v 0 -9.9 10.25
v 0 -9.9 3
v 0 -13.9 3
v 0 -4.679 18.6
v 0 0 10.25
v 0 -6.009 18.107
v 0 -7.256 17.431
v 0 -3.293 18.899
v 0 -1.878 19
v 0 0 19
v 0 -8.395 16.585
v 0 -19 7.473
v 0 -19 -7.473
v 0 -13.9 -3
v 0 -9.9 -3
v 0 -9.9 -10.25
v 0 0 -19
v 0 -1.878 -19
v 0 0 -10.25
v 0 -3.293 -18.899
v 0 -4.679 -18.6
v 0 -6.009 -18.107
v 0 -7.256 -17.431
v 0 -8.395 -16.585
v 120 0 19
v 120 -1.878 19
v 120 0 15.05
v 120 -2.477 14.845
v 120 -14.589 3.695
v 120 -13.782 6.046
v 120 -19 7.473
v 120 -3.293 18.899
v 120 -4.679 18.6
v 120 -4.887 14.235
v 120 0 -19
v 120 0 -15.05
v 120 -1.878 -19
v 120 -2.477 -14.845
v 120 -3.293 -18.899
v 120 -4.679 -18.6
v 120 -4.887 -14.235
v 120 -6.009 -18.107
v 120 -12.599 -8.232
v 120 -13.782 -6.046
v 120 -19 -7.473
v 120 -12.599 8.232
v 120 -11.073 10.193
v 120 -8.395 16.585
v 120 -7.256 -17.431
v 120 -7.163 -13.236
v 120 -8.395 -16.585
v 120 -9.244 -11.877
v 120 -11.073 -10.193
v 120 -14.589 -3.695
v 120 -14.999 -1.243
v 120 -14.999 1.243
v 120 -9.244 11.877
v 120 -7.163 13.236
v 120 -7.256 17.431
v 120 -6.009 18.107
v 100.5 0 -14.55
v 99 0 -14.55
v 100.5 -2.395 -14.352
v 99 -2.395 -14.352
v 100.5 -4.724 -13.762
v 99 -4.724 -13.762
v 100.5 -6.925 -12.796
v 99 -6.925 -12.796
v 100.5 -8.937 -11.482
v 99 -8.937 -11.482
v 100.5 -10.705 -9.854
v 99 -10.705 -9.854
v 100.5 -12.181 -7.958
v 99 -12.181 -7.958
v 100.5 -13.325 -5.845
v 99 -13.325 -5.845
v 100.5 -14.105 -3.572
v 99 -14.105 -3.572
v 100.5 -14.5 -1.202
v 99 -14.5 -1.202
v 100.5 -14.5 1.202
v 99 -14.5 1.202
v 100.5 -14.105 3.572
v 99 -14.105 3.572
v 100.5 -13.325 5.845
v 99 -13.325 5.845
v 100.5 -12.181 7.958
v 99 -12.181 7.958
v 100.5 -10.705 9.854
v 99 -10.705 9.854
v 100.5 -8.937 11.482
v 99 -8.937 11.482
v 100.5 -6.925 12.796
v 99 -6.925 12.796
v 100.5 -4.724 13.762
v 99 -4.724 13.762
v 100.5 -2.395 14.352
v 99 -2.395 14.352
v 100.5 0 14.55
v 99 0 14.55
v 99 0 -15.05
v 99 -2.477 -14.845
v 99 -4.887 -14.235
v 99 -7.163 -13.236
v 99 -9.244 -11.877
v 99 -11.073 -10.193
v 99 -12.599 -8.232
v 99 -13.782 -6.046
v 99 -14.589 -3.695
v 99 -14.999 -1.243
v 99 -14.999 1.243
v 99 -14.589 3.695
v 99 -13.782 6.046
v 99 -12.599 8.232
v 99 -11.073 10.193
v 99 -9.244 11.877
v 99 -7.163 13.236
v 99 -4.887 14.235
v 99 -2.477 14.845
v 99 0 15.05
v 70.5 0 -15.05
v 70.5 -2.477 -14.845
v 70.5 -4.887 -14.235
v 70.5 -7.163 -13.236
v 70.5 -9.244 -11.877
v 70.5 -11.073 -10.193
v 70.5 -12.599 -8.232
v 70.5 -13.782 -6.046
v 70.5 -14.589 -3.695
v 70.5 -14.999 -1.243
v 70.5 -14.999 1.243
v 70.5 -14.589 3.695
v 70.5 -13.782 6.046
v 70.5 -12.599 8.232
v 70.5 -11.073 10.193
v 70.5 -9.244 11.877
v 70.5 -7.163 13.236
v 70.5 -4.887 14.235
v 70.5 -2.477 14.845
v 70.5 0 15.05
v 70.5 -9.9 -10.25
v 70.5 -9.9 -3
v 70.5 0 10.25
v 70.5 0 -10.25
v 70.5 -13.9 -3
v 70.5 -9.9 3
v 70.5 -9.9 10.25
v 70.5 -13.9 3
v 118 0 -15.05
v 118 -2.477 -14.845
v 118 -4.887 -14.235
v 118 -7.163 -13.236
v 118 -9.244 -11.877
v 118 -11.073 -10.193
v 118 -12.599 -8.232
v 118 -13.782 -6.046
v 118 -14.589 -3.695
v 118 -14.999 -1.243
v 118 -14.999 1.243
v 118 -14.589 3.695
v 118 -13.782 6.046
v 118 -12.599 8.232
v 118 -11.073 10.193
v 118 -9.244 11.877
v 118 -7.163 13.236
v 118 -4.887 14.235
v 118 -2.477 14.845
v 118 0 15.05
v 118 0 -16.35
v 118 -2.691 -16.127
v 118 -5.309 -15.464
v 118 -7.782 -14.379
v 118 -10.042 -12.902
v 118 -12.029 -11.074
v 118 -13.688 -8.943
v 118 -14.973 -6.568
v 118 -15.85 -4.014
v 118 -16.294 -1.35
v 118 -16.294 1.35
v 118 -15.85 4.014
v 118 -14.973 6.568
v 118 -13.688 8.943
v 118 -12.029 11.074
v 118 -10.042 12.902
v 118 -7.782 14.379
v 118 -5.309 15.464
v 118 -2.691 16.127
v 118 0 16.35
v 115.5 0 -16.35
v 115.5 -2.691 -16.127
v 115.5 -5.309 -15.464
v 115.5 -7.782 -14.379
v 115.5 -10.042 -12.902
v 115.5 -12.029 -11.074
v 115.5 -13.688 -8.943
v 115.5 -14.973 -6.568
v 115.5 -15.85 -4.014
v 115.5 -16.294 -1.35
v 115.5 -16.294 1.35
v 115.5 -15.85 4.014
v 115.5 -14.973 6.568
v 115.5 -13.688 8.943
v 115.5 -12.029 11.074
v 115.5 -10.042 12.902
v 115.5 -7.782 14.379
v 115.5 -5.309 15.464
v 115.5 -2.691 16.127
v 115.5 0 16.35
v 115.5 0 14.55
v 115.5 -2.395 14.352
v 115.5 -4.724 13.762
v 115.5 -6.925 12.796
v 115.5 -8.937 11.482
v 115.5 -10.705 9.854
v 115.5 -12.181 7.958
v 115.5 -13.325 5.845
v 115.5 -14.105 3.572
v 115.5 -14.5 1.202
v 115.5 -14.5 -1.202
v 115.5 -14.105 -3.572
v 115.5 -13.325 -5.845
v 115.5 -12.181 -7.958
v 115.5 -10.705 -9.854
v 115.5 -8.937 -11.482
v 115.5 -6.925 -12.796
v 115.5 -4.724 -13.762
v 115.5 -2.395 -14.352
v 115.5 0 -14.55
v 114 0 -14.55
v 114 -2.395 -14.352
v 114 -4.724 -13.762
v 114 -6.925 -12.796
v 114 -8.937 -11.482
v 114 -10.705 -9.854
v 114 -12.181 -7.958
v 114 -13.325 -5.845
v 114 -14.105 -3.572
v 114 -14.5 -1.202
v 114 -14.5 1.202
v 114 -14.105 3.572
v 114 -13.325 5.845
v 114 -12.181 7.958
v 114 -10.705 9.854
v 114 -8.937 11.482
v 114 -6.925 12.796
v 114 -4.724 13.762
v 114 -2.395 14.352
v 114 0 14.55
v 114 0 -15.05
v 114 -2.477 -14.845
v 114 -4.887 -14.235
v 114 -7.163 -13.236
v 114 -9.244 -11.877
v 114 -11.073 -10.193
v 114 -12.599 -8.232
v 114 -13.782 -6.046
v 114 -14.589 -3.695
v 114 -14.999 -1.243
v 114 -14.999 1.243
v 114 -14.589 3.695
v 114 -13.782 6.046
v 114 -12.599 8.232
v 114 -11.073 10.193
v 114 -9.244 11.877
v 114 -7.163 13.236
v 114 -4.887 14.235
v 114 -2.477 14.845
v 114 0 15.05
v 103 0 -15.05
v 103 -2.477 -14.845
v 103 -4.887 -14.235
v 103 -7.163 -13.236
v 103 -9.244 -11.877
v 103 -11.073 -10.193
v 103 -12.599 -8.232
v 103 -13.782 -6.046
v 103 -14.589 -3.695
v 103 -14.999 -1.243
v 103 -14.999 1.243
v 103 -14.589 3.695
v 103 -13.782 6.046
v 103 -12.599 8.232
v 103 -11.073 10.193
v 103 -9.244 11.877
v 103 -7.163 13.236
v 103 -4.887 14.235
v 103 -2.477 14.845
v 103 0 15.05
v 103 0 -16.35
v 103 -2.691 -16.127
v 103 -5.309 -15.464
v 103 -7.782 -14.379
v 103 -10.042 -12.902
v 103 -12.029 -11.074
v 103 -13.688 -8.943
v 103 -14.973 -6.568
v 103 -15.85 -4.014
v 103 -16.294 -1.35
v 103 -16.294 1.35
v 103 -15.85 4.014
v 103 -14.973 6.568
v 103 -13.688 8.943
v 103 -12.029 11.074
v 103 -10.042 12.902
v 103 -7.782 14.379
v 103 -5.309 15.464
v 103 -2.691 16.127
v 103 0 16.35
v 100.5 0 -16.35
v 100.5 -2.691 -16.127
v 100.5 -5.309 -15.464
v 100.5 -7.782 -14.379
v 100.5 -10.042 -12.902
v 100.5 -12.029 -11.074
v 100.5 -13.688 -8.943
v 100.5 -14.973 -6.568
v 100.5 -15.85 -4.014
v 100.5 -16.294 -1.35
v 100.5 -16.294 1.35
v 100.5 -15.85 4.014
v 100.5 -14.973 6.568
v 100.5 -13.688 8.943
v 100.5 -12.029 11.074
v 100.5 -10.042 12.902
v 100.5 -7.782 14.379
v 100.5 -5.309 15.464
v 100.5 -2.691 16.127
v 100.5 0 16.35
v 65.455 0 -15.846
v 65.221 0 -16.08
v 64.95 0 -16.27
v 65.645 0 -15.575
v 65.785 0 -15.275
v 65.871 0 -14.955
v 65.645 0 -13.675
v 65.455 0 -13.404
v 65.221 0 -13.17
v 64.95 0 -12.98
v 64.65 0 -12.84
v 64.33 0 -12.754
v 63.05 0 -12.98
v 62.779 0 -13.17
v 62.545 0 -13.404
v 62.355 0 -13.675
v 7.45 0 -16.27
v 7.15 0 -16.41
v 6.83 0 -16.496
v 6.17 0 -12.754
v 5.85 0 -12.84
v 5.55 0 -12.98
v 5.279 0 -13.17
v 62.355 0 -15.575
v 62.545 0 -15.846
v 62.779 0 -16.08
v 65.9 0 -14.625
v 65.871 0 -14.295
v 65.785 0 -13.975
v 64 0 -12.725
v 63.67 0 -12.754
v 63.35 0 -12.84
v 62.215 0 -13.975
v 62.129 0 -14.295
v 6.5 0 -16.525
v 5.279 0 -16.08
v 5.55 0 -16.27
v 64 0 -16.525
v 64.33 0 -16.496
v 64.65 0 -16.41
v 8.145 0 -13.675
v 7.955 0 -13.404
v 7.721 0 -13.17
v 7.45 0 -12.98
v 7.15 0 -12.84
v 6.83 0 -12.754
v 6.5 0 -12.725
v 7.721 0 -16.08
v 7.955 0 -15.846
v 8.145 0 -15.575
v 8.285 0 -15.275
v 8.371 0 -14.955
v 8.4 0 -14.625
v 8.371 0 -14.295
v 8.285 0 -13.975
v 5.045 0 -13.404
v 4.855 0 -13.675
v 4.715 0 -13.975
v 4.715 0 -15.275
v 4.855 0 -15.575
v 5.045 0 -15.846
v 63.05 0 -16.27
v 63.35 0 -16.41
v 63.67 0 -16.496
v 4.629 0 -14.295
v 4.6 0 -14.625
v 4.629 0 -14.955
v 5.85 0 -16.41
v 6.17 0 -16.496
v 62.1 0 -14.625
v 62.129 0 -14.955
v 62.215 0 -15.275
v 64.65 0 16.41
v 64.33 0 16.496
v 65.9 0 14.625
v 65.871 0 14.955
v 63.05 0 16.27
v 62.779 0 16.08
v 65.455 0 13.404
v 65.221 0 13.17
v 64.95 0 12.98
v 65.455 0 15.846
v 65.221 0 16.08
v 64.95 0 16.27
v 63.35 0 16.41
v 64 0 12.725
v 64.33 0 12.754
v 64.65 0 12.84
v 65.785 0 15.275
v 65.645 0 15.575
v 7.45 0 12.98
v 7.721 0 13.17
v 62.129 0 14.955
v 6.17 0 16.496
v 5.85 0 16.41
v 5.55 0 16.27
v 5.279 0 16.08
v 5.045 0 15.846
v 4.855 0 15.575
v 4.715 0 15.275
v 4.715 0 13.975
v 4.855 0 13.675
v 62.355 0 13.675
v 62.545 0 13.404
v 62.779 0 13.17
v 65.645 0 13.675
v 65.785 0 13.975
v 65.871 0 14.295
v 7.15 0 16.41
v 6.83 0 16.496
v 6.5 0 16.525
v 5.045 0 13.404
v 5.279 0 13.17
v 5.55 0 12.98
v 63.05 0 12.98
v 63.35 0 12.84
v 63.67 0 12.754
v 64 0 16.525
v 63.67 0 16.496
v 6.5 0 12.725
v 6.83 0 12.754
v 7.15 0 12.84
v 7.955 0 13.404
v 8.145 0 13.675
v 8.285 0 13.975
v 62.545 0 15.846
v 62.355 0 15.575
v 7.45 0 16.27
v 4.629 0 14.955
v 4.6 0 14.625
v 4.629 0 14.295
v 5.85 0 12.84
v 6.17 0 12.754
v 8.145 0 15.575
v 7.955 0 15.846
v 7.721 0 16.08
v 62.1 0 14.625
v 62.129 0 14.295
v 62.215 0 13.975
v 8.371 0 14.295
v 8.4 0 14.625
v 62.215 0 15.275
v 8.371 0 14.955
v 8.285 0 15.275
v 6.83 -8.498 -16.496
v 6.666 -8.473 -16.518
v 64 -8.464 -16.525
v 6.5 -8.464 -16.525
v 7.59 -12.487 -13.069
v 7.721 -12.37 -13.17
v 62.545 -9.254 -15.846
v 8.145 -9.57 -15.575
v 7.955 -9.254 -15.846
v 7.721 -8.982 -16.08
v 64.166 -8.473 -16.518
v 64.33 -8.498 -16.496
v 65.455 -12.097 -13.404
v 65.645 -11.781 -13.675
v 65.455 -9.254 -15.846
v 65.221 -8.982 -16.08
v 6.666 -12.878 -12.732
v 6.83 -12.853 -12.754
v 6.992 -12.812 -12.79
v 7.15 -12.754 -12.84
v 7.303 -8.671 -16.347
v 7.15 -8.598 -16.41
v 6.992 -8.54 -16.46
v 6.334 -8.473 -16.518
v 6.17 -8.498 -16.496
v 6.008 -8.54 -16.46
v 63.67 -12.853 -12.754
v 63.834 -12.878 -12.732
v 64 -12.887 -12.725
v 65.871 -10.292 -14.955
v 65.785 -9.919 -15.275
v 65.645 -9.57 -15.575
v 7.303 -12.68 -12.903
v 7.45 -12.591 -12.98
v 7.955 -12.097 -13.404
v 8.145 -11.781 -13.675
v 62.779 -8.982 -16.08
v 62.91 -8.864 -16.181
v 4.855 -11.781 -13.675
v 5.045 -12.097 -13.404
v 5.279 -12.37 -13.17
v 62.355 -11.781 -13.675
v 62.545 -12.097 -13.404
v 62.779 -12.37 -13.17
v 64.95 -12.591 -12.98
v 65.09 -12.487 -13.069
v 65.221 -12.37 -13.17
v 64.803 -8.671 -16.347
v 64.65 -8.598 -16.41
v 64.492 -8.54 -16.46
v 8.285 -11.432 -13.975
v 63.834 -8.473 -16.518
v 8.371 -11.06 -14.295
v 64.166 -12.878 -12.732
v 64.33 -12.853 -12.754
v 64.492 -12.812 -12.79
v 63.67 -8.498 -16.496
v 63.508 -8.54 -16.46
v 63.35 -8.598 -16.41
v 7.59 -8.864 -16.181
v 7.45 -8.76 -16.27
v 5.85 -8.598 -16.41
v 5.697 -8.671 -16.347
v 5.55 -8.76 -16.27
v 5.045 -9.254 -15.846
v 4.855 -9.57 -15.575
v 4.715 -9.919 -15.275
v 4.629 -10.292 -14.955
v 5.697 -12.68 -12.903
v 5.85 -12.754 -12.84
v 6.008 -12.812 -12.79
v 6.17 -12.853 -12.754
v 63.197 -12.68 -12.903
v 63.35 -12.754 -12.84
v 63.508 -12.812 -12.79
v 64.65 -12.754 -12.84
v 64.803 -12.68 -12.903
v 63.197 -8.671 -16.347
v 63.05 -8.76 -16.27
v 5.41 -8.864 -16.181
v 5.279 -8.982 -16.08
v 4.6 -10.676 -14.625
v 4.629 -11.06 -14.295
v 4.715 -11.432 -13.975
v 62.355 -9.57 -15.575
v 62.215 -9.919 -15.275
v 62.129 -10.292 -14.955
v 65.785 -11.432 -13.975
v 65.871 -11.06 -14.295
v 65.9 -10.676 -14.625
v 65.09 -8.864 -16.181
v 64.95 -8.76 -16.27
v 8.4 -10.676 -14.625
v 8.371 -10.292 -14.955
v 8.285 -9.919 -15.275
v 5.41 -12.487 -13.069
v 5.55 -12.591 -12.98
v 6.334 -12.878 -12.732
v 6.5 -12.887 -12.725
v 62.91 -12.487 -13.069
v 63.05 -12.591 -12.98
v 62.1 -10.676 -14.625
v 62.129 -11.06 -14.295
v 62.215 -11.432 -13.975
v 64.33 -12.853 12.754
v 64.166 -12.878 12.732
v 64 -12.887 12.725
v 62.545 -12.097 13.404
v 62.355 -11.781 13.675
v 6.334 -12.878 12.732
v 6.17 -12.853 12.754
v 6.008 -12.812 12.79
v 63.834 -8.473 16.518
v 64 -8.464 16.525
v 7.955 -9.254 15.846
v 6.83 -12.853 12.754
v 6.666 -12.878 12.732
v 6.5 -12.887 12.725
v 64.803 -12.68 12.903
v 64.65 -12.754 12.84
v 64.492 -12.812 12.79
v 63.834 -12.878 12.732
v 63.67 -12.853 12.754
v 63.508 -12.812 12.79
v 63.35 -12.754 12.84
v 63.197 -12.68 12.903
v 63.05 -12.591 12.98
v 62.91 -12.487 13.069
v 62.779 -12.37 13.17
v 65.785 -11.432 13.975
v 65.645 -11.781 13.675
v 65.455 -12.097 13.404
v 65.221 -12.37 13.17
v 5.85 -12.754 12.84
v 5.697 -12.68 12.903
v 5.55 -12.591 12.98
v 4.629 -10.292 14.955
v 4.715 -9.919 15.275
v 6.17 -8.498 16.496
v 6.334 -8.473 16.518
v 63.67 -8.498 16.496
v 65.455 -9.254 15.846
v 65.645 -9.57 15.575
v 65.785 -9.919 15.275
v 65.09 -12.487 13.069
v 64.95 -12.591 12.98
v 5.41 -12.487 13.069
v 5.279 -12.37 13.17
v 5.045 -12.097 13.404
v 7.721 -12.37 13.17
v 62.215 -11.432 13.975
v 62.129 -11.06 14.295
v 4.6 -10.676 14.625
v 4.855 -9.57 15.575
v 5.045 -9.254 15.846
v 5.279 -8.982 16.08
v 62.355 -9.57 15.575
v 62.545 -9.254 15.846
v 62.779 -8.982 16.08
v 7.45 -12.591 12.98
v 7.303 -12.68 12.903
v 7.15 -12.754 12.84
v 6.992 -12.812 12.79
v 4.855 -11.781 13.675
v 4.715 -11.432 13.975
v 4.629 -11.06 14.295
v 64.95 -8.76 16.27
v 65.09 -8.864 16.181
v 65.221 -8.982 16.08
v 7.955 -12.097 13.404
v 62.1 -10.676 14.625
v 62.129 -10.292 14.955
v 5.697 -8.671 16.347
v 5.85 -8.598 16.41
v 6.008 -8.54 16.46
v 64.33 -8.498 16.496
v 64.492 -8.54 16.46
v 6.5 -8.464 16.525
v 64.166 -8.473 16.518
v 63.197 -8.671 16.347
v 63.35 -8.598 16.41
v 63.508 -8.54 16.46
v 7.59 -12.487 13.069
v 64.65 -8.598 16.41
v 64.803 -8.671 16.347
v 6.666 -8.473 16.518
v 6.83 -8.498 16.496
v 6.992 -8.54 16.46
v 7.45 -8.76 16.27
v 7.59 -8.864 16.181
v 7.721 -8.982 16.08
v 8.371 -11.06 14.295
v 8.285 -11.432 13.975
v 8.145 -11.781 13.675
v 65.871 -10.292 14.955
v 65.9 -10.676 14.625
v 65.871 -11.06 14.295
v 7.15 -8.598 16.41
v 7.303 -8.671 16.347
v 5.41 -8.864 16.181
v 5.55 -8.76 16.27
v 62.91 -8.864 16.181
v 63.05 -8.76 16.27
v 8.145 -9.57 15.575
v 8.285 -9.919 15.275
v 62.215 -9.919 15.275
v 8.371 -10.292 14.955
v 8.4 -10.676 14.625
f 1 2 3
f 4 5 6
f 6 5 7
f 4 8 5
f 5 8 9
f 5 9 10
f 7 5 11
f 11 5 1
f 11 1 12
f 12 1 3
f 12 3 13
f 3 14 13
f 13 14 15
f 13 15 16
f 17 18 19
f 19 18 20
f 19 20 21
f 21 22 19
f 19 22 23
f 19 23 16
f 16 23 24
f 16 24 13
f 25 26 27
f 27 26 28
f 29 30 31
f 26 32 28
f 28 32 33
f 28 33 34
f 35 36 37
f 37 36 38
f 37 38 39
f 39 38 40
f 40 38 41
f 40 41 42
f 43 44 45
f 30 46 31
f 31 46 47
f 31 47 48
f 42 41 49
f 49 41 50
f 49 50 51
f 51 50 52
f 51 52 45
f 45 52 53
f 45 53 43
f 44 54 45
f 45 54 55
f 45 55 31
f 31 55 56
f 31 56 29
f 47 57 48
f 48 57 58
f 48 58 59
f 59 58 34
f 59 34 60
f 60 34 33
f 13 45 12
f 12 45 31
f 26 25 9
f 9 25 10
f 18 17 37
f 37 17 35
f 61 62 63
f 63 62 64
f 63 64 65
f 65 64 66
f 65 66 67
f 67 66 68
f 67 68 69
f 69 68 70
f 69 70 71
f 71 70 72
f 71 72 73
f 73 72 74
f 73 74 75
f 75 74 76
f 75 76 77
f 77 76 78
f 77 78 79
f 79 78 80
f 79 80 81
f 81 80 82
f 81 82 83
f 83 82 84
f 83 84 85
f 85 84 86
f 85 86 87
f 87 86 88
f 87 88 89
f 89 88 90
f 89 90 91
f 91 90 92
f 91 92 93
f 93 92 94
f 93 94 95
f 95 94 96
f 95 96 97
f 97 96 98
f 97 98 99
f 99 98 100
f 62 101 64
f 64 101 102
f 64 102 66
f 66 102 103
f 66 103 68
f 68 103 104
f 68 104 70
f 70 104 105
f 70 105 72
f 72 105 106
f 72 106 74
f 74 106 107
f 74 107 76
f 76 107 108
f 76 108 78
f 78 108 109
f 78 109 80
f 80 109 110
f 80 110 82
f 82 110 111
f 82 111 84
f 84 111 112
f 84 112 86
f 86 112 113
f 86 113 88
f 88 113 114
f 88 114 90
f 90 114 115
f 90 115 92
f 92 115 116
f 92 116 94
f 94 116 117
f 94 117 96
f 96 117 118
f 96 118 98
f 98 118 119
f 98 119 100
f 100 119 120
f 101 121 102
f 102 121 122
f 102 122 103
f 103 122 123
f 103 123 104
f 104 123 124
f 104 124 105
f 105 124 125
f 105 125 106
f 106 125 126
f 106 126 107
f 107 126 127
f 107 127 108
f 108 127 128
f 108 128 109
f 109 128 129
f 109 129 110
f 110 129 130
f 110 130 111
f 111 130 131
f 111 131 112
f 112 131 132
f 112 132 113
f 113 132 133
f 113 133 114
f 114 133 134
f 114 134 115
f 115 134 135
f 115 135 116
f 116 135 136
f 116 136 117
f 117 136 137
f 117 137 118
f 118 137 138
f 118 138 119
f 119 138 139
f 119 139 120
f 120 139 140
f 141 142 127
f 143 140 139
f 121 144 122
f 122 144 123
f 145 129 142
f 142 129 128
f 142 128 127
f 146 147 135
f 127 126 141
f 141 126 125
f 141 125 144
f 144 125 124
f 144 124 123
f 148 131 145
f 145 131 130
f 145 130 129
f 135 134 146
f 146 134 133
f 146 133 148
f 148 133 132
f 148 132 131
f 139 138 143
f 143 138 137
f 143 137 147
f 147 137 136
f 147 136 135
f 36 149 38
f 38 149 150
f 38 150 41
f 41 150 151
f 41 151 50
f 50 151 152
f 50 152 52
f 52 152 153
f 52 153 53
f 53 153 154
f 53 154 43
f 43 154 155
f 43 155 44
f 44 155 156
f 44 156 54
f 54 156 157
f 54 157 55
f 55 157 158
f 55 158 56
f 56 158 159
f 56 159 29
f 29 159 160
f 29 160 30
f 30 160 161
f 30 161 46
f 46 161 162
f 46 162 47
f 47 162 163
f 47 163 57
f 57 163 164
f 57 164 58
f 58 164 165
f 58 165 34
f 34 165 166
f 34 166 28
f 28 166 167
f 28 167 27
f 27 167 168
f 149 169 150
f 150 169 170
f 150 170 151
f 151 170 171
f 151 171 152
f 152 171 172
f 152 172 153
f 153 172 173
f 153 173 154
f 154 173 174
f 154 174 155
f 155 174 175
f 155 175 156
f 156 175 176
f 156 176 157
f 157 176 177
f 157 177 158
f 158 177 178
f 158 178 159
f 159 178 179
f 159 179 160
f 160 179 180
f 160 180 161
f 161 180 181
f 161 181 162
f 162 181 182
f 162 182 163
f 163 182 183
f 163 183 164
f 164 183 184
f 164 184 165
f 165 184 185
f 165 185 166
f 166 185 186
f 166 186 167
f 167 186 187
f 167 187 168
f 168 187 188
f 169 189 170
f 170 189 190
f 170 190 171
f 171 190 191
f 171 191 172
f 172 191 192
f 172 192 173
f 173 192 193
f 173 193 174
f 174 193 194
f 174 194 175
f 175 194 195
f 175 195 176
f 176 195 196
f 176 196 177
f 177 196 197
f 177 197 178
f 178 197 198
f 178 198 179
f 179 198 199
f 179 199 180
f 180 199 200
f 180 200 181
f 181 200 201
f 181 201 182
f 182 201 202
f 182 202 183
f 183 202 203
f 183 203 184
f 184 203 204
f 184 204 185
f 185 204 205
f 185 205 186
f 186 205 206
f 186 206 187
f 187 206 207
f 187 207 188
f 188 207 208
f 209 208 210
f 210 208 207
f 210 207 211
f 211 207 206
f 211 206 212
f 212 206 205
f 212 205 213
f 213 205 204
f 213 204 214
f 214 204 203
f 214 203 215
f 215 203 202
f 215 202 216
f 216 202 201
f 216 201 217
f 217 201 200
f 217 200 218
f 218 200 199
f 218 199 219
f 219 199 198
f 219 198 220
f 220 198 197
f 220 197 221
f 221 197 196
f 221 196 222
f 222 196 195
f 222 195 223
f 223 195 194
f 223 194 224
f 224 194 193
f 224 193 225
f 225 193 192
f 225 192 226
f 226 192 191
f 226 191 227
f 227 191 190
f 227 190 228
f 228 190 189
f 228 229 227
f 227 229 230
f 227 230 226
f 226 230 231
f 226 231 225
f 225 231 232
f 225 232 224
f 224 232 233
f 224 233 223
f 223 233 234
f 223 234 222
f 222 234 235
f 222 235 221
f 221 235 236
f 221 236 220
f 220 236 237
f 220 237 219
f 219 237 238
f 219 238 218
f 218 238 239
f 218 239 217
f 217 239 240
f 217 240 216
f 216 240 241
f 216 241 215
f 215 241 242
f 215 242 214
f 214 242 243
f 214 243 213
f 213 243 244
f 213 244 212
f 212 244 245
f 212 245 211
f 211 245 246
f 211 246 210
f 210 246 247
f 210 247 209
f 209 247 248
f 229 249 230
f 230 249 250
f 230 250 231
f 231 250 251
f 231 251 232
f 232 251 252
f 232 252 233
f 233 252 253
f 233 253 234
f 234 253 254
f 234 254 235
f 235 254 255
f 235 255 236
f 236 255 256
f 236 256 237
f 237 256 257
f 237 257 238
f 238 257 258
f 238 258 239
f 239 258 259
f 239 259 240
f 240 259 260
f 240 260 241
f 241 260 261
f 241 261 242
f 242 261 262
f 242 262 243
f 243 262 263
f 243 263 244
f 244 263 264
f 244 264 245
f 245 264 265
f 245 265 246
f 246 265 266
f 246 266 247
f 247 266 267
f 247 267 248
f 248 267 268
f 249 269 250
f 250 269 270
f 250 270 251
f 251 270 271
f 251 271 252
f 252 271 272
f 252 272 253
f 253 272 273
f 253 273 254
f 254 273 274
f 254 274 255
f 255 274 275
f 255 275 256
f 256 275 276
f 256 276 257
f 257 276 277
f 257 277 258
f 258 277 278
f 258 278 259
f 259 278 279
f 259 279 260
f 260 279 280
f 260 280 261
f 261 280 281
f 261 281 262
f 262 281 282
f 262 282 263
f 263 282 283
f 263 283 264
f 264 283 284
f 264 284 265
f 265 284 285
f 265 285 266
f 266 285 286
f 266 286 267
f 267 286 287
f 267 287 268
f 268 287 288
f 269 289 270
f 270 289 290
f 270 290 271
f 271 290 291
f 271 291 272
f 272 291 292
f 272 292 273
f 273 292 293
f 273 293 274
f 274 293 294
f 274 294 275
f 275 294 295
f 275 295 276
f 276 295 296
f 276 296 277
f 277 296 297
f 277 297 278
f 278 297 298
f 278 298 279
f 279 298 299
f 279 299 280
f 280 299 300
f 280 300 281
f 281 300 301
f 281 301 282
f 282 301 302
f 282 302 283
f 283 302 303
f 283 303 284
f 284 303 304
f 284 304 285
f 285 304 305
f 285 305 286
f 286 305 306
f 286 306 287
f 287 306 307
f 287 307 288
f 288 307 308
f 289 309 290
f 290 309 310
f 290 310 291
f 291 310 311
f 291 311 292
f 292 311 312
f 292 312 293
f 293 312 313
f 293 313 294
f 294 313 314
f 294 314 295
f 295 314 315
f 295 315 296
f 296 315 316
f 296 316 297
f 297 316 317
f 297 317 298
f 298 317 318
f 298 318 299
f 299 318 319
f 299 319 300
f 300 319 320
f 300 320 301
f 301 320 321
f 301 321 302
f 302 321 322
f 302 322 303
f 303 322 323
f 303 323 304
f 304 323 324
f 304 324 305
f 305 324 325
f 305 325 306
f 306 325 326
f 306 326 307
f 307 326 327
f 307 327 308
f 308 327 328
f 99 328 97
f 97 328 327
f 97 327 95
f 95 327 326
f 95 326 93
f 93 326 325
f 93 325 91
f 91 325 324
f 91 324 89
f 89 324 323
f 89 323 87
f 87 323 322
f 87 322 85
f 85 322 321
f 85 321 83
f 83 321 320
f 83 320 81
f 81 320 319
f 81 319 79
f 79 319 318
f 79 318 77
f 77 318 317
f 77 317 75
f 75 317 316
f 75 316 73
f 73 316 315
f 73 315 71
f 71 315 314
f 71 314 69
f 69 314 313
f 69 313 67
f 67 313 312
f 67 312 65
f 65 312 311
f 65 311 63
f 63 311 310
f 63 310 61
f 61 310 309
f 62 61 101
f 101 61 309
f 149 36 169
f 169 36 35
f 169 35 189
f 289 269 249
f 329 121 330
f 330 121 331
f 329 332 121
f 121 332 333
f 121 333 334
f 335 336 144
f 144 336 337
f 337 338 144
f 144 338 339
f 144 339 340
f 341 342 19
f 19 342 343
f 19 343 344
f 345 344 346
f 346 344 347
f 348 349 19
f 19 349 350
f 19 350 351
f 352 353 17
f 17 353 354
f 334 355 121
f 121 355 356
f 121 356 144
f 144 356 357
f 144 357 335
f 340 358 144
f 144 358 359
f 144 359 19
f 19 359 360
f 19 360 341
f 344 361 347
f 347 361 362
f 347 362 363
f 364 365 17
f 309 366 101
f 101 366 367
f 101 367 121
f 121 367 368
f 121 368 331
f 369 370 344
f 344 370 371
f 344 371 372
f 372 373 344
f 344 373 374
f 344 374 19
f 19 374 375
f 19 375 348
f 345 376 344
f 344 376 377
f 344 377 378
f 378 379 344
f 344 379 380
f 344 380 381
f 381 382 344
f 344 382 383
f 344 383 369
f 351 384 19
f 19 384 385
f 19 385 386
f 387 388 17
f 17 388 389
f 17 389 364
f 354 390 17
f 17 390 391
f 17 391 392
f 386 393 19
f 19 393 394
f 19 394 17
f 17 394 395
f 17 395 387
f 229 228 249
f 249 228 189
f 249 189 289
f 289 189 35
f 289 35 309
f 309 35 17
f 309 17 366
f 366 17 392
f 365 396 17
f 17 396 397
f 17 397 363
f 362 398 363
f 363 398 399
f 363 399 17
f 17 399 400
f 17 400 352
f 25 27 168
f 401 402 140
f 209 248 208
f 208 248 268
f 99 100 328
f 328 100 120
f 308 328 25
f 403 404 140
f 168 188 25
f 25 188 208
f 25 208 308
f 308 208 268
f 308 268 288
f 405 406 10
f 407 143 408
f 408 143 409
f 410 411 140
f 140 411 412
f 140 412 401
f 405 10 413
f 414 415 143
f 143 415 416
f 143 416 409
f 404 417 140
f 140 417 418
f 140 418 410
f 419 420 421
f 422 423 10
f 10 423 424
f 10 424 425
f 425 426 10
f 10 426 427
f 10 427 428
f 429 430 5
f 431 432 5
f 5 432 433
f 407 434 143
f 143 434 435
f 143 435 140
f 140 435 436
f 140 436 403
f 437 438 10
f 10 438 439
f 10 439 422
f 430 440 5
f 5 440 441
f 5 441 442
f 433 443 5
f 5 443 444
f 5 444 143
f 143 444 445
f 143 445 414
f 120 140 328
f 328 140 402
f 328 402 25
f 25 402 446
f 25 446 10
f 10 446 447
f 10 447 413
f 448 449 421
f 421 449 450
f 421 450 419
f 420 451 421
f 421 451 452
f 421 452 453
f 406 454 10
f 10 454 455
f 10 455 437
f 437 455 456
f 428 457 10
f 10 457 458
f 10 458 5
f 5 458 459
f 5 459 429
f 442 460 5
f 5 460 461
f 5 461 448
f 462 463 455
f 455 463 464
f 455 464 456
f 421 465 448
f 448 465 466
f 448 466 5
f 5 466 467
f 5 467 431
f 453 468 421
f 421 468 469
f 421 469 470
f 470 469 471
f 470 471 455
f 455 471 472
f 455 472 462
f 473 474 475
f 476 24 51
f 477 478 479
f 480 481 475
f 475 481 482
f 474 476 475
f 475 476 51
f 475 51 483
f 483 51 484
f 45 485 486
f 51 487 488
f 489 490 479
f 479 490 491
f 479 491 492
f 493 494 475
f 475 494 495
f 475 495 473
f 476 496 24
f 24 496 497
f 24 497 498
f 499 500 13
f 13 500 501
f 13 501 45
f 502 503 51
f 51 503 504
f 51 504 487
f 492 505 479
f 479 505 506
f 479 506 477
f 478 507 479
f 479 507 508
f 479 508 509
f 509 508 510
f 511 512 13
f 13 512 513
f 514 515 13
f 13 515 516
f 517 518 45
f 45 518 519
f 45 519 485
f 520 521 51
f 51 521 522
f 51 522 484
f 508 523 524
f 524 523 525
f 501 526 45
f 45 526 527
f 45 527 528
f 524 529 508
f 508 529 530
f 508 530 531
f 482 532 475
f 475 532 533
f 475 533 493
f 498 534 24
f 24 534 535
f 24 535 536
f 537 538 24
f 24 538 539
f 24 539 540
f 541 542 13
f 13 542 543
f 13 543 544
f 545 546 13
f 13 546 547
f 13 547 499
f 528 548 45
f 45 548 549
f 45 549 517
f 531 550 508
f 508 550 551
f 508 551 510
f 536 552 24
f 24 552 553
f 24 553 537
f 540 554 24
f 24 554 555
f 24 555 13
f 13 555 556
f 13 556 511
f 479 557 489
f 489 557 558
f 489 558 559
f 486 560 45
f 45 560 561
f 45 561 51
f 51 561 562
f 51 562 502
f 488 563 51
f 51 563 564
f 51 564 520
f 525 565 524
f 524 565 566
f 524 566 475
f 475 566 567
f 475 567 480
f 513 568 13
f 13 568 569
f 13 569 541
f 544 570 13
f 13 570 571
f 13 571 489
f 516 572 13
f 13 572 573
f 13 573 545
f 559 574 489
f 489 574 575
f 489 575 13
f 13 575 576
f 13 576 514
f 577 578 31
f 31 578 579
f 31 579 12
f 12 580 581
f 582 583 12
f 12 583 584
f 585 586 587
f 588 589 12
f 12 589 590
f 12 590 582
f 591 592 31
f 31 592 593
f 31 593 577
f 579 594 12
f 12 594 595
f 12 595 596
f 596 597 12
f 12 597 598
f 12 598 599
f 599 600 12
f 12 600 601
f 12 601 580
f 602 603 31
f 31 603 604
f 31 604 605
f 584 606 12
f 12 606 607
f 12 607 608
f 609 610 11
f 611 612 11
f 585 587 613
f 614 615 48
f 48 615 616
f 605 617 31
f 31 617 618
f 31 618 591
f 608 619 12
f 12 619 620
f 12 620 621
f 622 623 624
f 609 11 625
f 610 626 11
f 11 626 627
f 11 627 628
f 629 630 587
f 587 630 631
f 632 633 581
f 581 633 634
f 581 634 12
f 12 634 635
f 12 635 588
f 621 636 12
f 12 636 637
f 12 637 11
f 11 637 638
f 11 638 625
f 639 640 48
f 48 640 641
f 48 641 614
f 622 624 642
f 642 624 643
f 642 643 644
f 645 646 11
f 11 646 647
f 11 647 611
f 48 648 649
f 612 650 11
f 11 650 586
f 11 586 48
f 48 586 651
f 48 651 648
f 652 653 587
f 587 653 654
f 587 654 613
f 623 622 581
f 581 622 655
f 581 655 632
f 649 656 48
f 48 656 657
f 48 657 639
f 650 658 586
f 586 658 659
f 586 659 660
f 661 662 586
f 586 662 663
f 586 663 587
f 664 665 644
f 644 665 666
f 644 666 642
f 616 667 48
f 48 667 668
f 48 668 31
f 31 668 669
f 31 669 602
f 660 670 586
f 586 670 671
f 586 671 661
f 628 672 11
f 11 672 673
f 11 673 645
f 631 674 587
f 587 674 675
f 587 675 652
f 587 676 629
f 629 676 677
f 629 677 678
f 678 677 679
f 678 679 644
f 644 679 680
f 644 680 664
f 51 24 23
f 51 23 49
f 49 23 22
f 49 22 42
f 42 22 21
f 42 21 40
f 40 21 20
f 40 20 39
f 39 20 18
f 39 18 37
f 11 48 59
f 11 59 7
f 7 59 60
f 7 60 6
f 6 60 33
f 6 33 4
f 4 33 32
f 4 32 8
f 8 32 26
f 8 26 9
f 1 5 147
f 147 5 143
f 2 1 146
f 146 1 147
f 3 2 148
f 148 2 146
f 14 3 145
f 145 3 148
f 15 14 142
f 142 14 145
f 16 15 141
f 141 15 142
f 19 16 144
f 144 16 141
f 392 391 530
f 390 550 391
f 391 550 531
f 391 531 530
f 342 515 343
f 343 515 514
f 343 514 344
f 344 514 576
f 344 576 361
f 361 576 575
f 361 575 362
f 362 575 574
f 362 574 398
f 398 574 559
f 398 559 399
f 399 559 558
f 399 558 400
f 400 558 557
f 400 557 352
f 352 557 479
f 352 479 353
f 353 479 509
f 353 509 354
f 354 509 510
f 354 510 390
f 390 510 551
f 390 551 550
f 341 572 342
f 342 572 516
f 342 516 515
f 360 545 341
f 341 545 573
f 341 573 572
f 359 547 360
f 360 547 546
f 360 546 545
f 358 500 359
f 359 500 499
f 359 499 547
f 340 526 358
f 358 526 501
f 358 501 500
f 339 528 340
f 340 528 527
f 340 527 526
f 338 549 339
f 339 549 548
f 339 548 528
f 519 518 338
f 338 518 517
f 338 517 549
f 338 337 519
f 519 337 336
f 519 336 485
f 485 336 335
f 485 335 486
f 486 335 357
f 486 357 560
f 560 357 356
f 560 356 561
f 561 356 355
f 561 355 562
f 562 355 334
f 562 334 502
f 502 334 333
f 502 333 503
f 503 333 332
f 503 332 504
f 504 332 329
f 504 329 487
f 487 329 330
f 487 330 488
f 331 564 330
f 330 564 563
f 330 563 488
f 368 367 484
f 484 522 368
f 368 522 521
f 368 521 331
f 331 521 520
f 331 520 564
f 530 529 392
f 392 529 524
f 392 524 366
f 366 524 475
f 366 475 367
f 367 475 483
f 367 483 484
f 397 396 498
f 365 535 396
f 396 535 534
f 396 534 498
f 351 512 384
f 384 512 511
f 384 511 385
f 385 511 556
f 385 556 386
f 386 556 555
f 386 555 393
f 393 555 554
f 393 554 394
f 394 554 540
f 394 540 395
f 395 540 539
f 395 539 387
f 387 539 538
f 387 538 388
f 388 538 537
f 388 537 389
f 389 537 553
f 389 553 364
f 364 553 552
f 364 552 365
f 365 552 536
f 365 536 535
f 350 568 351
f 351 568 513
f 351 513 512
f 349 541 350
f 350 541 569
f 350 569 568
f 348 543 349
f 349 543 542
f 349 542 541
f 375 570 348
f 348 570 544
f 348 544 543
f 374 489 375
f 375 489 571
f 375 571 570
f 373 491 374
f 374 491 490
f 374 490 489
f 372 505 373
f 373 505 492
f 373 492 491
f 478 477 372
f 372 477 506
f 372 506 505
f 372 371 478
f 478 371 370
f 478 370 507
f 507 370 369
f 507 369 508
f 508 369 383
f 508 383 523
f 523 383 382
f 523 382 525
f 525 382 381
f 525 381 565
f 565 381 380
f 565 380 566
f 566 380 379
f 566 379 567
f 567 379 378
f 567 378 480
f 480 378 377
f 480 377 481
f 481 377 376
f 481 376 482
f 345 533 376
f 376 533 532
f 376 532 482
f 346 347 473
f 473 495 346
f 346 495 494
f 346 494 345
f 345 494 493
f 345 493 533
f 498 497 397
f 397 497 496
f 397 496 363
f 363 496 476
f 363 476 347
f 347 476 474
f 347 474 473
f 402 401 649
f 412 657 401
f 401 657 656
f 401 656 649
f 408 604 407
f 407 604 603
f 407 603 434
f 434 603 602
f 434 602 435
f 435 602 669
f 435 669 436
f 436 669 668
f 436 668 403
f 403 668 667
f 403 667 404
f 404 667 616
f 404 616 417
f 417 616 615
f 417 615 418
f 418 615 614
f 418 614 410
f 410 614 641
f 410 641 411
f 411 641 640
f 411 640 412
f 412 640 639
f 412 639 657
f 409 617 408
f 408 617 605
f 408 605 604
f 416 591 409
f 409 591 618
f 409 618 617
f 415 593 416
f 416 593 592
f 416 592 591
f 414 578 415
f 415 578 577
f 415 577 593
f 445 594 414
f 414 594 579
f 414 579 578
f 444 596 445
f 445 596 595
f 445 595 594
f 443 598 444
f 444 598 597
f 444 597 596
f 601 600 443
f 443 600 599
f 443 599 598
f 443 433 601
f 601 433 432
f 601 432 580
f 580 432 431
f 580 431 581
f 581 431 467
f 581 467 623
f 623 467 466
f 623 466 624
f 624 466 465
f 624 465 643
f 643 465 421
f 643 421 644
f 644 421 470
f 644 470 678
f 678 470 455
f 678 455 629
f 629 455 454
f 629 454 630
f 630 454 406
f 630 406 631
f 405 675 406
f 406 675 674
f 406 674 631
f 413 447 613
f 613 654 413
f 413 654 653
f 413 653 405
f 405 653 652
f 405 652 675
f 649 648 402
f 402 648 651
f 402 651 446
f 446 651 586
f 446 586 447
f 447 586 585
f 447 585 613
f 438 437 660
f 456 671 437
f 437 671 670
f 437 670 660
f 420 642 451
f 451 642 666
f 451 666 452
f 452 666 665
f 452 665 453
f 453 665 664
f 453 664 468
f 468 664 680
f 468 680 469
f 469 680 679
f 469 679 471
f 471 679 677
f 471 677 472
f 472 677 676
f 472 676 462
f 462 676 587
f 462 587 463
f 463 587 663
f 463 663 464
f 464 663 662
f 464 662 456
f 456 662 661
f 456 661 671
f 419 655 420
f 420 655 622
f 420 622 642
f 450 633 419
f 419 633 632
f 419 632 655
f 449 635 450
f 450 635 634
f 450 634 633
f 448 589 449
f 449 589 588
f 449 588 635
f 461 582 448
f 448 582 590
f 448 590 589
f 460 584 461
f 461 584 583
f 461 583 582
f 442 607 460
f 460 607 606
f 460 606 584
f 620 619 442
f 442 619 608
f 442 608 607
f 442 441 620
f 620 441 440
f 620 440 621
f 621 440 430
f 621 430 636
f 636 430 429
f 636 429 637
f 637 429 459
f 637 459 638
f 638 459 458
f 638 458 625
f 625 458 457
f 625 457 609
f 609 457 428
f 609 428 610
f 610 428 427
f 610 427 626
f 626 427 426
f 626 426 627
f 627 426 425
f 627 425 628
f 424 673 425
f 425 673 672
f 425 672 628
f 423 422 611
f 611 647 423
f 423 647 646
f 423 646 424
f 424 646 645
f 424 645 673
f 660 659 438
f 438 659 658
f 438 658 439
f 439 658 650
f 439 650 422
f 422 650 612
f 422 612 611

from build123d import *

# Parameters (mm, degrees)
R_VOLUTION1_ANGLE       = 180
ENL_V_START             = -19
ESQUISSE2_W             = 120
ESQUISSE2_H             = 50.1
ENL_V_MAT_EXTRU_1_DEPTH = 10
ESQUISSE3_W             = 146.438377439
ESQUISSE3_H             = 50.311635948
ENL_V_MAT_EXTRU_2_DEPTH = 10
ESQUISSE4_W             = 156.060048108
ESQUISSE4_H             = 43.154210134
ENL_V_MAT_EXTRU_3_DEPTH = 7
CONG_1_R                = 10
ENL_V_MAT_EXTRU_4_DEPTH = 121
ESQUISSE6_R             = 1.9
ENL_V_MAT_EXTRU_5_DEPTH = 20


with BuildPart() as part:
    # Esquisse1 → Révolution1 (revolve, symmetric)
    with BuildSketch(Plane.XY) as r_volution1_sk:
        Polygon((70.5, -15.05), (99, -15.05), (99, -14.55), (100.5, -14.55), (100.5, -15.05), (100.5, -16.35), (103, -16.35), (103, -15.05), (114, -15.05), (114, -14.55), (115.5, -14.55), (115.5, -15.05), (115.5, -16.35), (118, -16.35), (118, -15.05), (120, -15.05), (120, -25.05), (0, -25.05), (0, -15.05), (0, -9.55), (70.5, -9.55), align=None)
    revolve(axis=Axis((0, 0, 0), (1, 0, 0)), revolution_arc=R_VOLUTION1_ANGLE / 2)
    revolve(r_volution1_sk.sketch, axis=Axis((0, 0, 0), (-1, 0, 0)), revolution_arc=R_VOLUTION1_ANGLE / 2)

    # Esquisse2 → Enlèv. mat.-Extru.1 (cut)
    with BuildSketch(Plane(origin=(0, 0, 0), x_dir=(1, 0, 0), z_dir=(0, 1, 0)).offset(ENL_V_START)):
        with Locations((60, 0)):
            Rectangle(ESQUISSE2_W, ESQUISSE2_H)
    extrude(amount=-ENL_V_MAT_EXTRU_1_DEPTH, mode=Mode.SUBTRACT)

    # Esquisse3 → Enlèv. mat.-Extru.2 (cut)
    with BuildSketch(Plane.XY.offset(ENL_V_START)):
        with Locations((56.62202011, -13.21090671)):
            Rectangle(ESQUISSE3_W, ESQUISSE3_H)
    enl_v_mat_extru_2 = extrude(amount=-ENL_V_MAT_EXTRU_2_DEPTH, mode=Mode.SUBTRACT)

    # Esquisse4 → Enlèv. mat.-Extru.3 (cut)
    with BuildSketch(Plane(origin=(0, -16.324904288, -19), x_dir=(-1, 0, 0), z_dir=(0, -0.651692786, -0.758483034))):
        with Locations((-53.986796091, -2.160595236)):
            Rectangle(ESQUISSE4_W, ESQUISSE4_H)
    enl_v_mat_extru_3 = extrude(amount=-ENL_V_MAT_EXTRU_3_DEPTH, mode=Mode.SUBTRACT)

    # Symétrie1: Enlèv. mat.-Extru.2, Enlèv. mat.-Extru.3 across plane
    add(enl_v_mat_extru_2.mirror(Plane.XY), mode=Mode.SUBTRACT)
    add(enl_v_mat_extru_3.mirror(Plane.XY), mode=Mode.SUBTRACT)

    # Congé1
    cong_1_edges = [part.edges().sort_by_distance(p)[0] for p in [
        (60, -5.583646825, 19),
        (60, -5.583646825, -19),
    ]]
    fillet(cong_1_edges, radius=CONG_1_R)

    # Esquisse5 → Enlèv. mat.-Extru.4 (cut, through all)
    with BuildSketch(Plane.ZY):
        Polygon((10.25, 0), (-10.25, 0), (-10.25, -9.9), (-3, -9.9), (-3, -13.9), (3, -13.9), (3, -9.9), (10.25, -9.9), align=None)
    extrude(amount=-ENL_V_MAT_EXTRU_4_DEPTH, mode=Mode.SUBTRACT)

    # Esquisse6 → Enlèv. mat.-Extru.5 (cut, through all)
    with BuildSketch(Plane(origin=(0, 0, 0), x_dir=(1, 0, 0), z_dir=(0, 1, 0))):
        with Locations((6.5, 14.625)):
            Circle(ESQUISSE6_R)
        with Locations((64, 14.625)):
            Circle(ESQUISSE6_R)
    enl_v_mat_extru_5 = extrude(amount=-ENL_V_MAT_EXTRU_5_DEPTH, mode=Mode.SUBTRACT)

    # Symétrie2: Enlèv. mat.-Extru.5 across plane
    add(enl_v_mat_extru_5.mirror(Plane.XY), mode=Mode.SUBTRACT)


solid = part.part
